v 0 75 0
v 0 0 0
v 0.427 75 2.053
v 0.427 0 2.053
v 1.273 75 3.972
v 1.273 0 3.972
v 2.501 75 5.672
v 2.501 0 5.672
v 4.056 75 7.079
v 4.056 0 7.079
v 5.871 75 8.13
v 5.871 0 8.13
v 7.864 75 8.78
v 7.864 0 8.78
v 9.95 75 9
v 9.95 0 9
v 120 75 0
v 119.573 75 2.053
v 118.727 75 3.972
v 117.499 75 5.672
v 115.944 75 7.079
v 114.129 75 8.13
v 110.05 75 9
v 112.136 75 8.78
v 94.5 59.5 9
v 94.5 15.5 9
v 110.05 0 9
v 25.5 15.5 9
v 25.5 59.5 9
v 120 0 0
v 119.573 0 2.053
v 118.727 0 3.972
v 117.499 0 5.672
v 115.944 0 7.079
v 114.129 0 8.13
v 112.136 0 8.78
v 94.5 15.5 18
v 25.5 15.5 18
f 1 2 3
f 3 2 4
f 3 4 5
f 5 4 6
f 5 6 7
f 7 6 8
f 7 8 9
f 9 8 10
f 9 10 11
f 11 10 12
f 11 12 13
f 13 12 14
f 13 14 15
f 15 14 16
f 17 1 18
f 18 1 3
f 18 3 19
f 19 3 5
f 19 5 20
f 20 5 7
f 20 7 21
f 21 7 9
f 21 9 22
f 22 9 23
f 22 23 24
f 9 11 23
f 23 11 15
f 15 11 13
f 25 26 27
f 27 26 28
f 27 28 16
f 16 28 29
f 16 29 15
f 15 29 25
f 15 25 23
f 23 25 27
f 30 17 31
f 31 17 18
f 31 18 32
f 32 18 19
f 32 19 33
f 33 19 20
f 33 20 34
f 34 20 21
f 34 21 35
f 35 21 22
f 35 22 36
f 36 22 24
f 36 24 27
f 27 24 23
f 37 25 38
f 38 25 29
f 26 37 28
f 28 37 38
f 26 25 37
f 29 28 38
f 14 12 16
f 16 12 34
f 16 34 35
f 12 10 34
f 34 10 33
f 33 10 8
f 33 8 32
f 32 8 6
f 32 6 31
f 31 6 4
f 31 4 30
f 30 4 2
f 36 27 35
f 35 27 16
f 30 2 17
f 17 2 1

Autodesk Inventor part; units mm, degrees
ref_plane "YZ Plane" through (0, 0, 0) normal (1, 0, 0) x (0, 1, 0)
ref_plane "XZ Plane" through (0, 0, 0) normal (0, 1, 0) x (-1, 0, 0)
sketch "스케치1" plane through (0, 0, 0) normal (0, 0, 1) x (1, 0, 0)
  line L0 (0, 0) -> (120, 0)
  line L1 (120, 0) -> (120, 75)
  line L2 (120, 75) -> (0, 75)
  line L3 (0, 75) -> (0, 0)
  dimension "d0" = 120
  dimension "d1" = 75
extrude "돌출1" add sketch "스케치1" along normal blind 9
sketch "스케치2" plane through (0, 0, 9) normal (0, 0, 1) x (1, 0, 0)
  line L0 (25.5, 59.5) -> (94.5, 59.5)
  line L1 (94.5, 59.5) -> (94.5, 15.5)
  line L2 (94.5, 15.5) -> (25.5, 15.5)
  line L3 (25.5, 15.5) -> (25.5, 59.5)
  line L4 (0, 75) -> (0, 0) projected
  line L5 (0, 0) -> (120, 0) projected
  dimension "d4" = 44
  dimension "d5" = 69
  dimension "d6" = 25.5
  dimension "d7" = 15.5
ref_plane "작업 평면1" through (94.5, 0, 0) normal (1, 0, 0) x (0, 0, -1)
sketch "스케치3" plane through (94.5, 0, 0) normal (1, 0, 0) x (0, 0, -1)
  line L0 (-9, 0) -> (-9, 75) projected
  line L1 (-9, 59.5) -> (-9, 15.5) projected
  line L2 (-9, 59.5) -> (-17.9999, 15.5)
  line L3 (-17.9999, 15.5) -> (-9, 15.5)
  point P0 (0, 0)
  dimension "d9" = 11.56
  dimension "d10" = 90
extrude "돌출2" add sketch "스케치3" against normal blind 69
fillet "모깎기1" radius 10 1 edges at (120, 37.5, 9)
fillet "모깎기2" radius 10 1 edges at (0, 37.5, 9)
properties part number "스위치"
